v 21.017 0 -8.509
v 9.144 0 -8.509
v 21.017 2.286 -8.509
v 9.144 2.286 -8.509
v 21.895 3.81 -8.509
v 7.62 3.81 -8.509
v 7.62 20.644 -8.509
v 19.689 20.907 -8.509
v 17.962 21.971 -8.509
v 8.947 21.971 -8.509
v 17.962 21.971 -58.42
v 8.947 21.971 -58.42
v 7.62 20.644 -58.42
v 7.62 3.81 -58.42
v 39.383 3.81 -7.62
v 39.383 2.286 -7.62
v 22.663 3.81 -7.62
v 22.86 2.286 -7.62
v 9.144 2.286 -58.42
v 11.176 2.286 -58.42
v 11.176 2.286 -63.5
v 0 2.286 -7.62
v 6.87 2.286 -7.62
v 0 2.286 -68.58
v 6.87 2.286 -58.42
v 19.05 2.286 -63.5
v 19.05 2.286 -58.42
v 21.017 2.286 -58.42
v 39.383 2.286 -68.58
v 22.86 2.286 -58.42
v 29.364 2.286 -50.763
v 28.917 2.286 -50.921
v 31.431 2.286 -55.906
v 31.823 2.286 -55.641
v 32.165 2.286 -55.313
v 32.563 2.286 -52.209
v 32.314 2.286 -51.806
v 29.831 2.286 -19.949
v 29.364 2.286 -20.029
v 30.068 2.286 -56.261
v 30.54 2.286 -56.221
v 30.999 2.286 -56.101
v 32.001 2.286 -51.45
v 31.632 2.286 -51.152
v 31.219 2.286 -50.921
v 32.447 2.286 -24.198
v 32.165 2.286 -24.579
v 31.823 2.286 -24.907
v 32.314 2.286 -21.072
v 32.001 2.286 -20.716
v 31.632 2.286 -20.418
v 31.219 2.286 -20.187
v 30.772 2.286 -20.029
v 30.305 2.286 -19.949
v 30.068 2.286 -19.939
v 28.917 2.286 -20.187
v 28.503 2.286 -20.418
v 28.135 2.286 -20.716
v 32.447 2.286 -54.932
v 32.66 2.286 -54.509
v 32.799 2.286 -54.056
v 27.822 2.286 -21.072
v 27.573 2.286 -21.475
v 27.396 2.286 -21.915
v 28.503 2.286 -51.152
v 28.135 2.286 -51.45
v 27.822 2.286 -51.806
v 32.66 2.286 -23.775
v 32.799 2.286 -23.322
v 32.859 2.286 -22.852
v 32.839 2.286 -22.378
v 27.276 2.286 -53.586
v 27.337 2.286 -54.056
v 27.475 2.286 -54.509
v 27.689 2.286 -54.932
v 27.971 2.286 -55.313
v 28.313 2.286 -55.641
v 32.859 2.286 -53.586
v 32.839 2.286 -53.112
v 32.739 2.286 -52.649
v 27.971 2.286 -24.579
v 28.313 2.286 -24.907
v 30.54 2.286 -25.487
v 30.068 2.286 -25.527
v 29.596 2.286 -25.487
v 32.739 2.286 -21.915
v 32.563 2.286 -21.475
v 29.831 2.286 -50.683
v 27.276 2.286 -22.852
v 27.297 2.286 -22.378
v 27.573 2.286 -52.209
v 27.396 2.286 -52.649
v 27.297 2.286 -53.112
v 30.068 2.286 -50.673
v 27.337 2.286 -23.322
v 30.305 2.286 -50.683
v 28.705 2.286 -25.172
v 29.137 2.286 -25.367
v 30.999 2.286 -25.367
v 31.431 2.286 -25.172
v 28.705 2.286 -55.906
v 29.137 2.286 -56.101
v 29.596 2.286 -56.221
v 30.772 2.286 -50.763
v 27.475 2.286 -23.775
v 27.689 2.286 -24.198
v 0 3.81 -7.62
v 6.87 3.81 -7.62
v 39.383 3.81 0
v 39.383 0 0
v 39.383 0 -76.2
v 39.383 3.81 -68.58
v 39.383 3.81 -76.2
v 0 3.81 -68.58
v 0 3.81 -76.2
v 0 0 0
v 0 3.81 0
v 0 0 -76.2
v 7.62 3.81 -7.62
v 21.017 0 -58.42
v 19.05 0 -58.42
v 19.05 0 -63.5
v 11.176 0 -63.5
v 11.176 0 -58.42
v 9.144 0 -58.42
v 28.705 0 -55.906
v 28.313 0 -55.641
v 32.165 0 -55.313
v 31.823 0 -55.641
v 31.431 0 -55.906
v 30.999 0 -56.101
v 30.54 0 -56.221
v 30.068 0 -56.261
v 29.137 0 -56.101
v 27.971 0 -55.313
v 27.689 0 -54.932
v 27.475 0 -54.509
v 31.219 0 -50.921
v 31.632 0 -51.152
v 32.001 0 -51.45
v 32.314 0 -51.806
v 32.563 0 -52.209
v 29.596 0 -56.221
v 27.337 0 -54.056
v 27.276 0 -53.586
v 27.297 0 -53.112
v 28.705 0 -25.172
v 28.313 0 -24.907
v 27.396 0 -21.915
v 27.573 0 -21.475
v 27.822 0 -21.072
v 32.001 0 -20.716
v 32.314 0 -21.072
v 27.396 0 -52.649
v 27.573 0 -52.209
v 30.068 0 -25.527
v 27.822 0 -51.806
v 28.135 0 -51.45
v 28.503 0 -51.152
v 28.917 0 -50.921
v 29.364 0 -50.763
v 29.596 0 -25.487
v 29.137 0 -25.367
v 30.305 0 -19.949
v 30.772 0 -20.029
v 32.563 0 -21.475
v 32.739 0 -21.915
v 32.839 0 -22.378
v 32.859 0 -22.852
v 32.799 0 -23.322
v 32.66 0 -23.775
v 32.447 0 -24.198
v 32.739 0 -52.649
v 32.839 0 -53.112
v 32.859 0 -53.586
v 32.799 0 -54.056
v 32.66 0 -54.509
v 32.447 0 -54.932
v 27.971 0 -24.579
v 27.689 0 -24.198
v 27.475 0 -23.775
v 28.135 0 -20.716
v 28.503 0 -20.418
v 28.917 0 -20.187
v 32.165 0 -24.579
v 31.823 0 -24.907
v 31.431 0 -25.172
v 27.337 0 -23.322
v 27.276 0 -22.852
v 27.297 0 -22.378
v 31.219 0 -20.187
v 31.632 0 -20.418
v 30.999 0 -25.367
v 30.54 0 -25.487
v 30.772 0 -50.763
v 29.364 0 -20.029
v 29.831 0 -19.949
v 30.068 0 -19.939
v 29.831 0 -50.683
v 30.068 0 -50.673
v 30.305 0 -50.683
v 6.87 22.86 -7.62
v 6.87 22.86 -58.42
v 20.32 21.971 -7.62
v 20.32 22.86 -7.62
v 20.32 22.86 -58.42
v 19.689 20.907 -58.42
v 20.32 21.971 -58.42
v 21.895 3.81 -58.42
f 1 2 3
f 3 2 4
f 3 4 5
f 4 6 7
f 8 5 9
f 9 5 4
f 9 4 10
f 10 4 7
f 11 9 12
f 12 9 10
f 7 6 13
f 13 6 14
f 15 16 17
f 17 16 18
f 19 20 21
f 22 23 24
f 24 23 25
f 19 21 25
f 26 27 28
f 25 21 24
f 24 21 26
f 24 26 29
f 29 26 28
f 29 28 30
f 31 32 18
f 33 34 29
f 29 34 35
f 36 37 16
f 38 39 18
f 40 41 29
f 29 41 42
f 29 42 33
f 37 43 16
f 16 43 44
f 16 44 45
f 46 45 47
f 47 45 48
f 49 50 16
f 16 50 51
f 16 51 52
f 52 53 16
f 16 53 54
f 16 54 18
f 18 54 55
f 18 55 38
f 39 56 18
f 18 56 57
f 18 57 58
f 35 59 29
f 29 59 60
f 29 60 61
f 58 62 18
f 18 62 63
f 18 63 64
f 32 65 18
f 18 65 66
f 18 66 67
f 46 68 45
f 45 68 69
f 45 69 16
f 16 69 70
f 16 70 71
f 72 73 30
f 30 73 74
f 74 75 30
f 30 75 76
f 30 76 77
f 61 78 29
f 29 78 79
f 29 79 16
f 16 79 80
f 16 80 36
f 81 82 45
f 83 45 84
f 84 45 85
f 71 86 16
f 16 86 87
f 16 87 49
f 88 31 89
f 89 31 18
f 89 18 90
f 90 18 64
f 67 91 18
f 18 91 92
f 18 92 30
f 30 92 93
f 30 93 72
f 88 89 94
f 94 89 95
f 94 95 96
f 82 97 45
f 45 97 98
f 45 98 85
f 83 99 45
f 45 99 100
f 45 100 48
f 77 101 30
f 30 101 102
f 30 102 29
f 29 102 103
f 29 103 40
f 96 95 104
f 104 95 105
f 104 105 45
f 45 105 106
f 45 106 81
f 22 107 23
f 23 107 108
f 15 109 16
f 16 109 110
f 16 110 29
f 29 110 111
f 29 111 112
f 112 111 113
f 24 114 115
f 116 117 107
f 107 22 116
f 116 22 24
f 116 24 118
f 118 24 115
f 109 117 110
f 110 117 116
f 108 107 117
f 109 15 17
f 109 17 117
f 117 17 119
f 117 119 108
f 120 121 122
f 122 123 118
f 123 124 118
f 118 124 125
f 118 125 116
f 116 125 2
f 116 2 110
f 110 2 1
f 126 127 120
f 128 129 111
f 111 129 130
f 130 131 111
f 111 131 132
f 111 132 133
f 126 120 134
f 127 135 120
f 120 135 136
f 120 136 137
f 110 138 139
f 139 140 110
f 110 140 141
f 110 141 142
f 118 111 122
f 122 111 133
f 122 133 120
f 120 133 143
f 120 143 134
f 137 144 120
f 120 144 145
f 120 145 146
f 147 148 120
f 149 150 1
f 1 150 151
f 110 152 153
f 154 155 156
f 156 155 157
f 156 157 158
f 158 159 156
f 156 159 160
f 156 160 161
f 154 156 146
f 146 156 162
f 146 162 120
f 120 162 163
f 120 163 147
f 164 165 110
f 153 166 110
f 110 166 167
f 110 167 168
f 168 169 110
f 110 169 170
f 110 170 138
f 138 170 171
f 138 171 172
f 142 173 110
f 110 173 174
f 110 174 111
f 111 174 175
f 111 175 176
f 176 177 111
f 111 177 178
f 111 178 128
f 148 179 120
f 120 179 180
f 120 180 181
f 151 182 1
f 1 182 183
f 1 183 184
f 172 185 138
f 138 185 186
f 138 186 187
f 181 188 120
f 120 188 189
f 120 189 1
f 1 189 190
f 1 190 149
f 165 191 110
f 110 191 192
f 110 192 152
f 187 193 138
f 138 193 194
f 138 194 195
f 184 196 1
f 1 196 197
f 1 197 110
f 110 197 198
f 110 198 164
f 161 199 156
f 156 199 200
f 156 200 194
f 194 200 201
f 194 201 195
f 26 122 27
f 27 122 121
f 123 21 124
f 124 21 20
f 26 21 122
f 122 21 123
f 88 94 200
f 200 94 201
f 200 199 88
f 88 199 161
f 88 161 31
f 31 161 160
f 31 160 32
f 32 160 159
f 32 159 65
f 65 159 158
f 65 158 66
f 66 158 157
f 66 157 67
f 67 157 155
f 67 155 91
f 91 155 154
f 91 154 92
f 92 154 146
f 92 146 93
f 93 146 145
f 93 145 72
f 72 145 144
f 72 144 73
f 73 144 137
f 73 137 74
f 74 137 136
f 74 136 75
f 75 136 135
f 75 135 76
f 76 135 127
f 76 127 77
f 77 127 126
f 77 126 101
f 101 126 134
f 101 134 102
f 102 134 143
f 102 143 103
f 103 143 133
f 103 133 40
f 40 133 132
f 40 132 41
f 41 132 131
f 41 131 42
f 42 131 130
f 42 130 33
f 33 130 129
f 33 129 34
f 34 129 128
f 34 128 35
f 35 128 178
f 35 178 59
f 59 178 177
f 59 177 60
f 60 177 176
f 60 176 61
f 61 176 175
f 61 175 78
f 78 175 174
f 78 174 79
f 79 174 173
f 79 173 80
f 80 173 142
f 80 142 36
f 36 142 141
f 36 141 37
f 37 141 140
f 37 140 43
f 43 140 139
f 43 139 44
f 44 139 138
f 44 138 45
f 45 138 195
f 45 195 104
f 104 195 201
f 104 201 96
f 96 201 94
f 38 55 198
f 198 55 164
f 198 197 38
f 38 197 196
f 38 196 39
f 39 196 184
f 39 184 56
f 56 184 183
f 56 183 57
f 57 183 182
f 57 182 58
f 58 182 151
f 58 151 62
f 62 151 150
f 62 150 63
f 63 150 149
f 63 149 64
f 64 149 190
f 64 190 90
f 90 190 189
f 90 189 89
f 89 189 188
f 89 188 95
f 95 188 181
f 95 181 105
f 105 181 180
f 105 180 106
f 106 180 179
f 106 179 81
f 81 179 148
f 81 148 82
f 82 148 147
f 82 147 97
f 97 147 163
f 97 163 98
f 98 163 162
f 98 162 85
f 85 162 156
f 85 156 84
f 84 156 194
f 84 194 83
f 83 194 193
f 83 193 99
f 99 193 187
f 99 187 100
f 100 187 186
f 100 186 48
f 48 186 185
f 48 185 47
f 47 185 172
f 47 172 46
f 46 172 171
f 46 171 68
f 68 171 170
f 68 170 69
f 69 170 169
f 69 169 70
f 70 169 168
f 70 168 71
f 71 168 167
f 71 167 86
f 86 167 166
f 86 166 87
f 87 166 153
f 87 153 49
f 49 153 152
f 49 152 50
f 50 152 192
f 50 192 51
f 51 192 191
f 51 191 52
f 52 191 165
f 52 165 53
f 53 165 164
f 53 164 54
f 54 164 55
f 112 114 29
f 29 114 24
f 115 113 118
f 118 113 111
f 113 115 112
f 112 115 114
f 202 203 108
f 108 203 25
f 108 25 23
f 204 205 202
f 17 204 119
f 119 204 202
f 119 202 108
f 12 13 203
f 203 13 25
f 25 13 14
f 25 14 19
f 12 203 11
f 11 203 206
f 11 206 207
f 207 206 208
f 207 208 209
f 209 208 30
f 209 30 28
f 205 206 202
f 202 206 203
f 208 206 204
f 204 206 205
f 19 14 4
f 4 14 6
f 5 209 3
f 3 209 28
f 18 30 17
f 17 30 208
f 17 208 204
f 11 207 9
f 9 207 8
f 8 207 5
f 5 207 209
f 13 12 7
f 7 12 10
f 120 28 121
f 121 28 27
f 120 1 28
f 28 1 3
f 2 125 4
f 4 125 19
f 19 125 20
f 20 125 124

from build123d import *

# Parameters (mm, degrees)
BOSS_EXTRUDE2_DEPTH   = 3.81
BOSS_EXTRUDE2_2_DEPTH = 3.81
SKETCH2_3_W           = 39.3827
SKETCH2_3_H           = 60.96
SKETCH2_3_R           = 2.794
SKETCH2_3_W_2         = 7.874
SKETCH2_3_H_2         = 50.8
BOSS_EXTRUDE3_DEPTH   = 2.286
SKETCH2_4_W           = 0.75
SKETCH2_4_H           = 50.8
BOSS_EXTRUDE4_DEPTH   = 22.86
SKETCH7_W             = 50.8
SKETCH7_H             = 0.889
BOSS_EXTRUDE6_DEPTH   = 12.7
BOSS_EXTRUDE7_DEPTH   = 0.889
BOSS_EXTRUDE8_DEPTH   = 50.8
SKETCH10_W            = 11.873277716
SKETCH10_H            = 49.911
CUT_EXTRUDE5_DEPTH    = 89.208426668


with BuildPart() as part:
    # Sketch2 → Boss-Extrude2 (new body)
    with BuildSketch(Plane(origin=(0, 0, 0), x_dir=(1, 0, 0), z_dir=(0, 1, 0))):
        Polygon((0, 7.62), (0, 0), (39.3827, 0), (39.3827, 7.62), (7.62, 7.62), (6.87, 7.62), align=None)
    extrude(amount=BOSS_EXTRUDE2_DEPTH)



with BuildPart() as body_2:
    # Sketch2 → Boss-Extrude2 2 (new body)
    with BuildSketch(Plane(origin=(0, 0, 0), x_dir=(1, 0, 0), z_dir=(0, 1, 0))):
        Polygon((0, 76.2), (0, 68.58), (6.87, 68.58), (7.62, 68.58), (39.3827, 68.58), (39.3827, 76.2), align=None)
    extrude(amount=BOSS_EXTRUDE2_2_DEPTH)


with BuildPart() as part_1:
    add(part.part)

    add(body_2.part)  # Boss-Extrude3 merges body 2
    # Sketch2<3> → Boss-Extrude3 (add)
    with BuildSketch(Plane(origin=(0, 0, 0), x_dir=(1, 0, 0), z_dir=(0, 1, 0))):
        with Locations((19.69135, 38.1)):
            Rectangle(SKETCH2_3_W, SKETCH2_3_H)
        with Locations(Location((30.067932262, 53.467, 0), (0, 0, 270))):
            Circle(SKETCH2_3_R, mode=Mode.SUBTRACT)
        with Locations((15.113, 38.1)):
            Rectangle(SKETCH2_3_W_2, SKETCH2_3_H_2, mode=Mode.SUBTRACT)
        with Locations(Location((30.067932262, 22.733, 0), (0, 0, 270))):
            Circle(SKETCH2_3_R, mode=Mode.SUBTRACT)
    extrude(amount=BOSS_EXTRUDE3_DEPTH)

    # Sketch2<4> → Boss-Extrude4 (add)
    with BuildSketch(Plane(origin=(0, 0, 0), x_dir=(1, 0, 0), z_dir=(0, 1, 0))):
        with Locations((7.245, 33.02)):
            Rectangle(SKETCH2_4_W, SKETCH2_4_H)
    extrude(amount=BOSS_EXTRUDE4_DEPTH)

    # Sketch7 → Boss-Extrude6 (add)
    with BuildSketch(Plane(origin=(7.62, 0, 0), x_dir=(0, 0, -1), z_dir=(1, 0, 0))):
        with Locations((33.02, 22.4155)):
            Rectangle(SKETCH7_W, SKETCH7_H)
    extrude(amount=BOSS_EXTRUDE6_DEPTH)

    # Sketch8 → Boss-Extrude7 (add)
    with BuildSketch(Plane(origin=(0, 0, -7.62), x_dir=(-1, 0, 0), z_dir=(0, 0, -1))):
        Polygon((-21.895037632, 3.81), (-7.62, 3.81), (-7.62, 20.64426719), (-8.94673281, 21.971), (-17.961616695, 21.971), (-19.689000062, 20.906791166), align=None)
        Polygon((-21.017277716, 2.286), (-21.895037632, 3.81), (-22.091682793, 2.286), align=None)
        Polygon((-9.144, 2.286), (-7.62, 2.286), (-7.62, 3.81), align=None)
        Polygon((-8.94673281, 21.971), (-7.62, 20.64426719), (-7.62, 21.971), align=None)
        Polygon((-19.551682793, 21.971), (-19.689000062, 20.906791166), (-17.961616695, 21.971), align=None)
        Polygon((-9.144, 2.286), (-7.62, 3.81), (-21.895037632, 3.81), (-21.017277716, 2.286), align=None)
    extrude(amount=BOSS_EXTRUDE7_DEPTH)

    # Sketch8<4> → Boss-Extrude8 (add)
    with BuildSketch(Plane(origin=(0, 0, -7.62), x_dir=(-1, 0, 0), z_dir=(0, 0, -1))):
        Polygon((-22.663354839, 3.81), (-21.895037632, 3.81), (-19.689000062, 20.906791166), (-19.551682793, 21.971), (-20.32, 21.971), align=None)
        Polygon((-22.091682793, 2.286), (-21.895037632, 3.81), (-22.663354839, 3.81), (-22.86, 2.286), align=None)
        Polygon((-21.017277716, 2.286), (-21.895037632, 3.81), (-22.091682793, 2.286), align=None)
        Polygon((-9.144, 2.286), (-7.62, 2.286), (-7.62, 3.81), align=None)
        Polygon((-19.551682793, 21.971), (-19.689000062, 20.906791166), (-17.961616695, 21.971), align=None)
        Polygon((-8.94673281, 21.971), (-7.62, 20.64426719), (-7.62, 21.971), align=None)
    extrude(amount=BOSS_EXTRUDE8_DEPTH)

    # Sketch10 → Cut-Extrude5 (cut, through all)
    with BuildSketch(Plane(origin=(0, 2.286, 0), x_dir=(1, 0, 0), z_dir=(0, 1, 0))):
        with Locations((15.080638858, 33.4645)):
            Rectangle(SKETCH10_W, SKETCH10_H)
    extrude(amount=-CUT_EXTRUDE5_DEPTH, mode=Mode.SUBTRACT)


solid = part_1.part
